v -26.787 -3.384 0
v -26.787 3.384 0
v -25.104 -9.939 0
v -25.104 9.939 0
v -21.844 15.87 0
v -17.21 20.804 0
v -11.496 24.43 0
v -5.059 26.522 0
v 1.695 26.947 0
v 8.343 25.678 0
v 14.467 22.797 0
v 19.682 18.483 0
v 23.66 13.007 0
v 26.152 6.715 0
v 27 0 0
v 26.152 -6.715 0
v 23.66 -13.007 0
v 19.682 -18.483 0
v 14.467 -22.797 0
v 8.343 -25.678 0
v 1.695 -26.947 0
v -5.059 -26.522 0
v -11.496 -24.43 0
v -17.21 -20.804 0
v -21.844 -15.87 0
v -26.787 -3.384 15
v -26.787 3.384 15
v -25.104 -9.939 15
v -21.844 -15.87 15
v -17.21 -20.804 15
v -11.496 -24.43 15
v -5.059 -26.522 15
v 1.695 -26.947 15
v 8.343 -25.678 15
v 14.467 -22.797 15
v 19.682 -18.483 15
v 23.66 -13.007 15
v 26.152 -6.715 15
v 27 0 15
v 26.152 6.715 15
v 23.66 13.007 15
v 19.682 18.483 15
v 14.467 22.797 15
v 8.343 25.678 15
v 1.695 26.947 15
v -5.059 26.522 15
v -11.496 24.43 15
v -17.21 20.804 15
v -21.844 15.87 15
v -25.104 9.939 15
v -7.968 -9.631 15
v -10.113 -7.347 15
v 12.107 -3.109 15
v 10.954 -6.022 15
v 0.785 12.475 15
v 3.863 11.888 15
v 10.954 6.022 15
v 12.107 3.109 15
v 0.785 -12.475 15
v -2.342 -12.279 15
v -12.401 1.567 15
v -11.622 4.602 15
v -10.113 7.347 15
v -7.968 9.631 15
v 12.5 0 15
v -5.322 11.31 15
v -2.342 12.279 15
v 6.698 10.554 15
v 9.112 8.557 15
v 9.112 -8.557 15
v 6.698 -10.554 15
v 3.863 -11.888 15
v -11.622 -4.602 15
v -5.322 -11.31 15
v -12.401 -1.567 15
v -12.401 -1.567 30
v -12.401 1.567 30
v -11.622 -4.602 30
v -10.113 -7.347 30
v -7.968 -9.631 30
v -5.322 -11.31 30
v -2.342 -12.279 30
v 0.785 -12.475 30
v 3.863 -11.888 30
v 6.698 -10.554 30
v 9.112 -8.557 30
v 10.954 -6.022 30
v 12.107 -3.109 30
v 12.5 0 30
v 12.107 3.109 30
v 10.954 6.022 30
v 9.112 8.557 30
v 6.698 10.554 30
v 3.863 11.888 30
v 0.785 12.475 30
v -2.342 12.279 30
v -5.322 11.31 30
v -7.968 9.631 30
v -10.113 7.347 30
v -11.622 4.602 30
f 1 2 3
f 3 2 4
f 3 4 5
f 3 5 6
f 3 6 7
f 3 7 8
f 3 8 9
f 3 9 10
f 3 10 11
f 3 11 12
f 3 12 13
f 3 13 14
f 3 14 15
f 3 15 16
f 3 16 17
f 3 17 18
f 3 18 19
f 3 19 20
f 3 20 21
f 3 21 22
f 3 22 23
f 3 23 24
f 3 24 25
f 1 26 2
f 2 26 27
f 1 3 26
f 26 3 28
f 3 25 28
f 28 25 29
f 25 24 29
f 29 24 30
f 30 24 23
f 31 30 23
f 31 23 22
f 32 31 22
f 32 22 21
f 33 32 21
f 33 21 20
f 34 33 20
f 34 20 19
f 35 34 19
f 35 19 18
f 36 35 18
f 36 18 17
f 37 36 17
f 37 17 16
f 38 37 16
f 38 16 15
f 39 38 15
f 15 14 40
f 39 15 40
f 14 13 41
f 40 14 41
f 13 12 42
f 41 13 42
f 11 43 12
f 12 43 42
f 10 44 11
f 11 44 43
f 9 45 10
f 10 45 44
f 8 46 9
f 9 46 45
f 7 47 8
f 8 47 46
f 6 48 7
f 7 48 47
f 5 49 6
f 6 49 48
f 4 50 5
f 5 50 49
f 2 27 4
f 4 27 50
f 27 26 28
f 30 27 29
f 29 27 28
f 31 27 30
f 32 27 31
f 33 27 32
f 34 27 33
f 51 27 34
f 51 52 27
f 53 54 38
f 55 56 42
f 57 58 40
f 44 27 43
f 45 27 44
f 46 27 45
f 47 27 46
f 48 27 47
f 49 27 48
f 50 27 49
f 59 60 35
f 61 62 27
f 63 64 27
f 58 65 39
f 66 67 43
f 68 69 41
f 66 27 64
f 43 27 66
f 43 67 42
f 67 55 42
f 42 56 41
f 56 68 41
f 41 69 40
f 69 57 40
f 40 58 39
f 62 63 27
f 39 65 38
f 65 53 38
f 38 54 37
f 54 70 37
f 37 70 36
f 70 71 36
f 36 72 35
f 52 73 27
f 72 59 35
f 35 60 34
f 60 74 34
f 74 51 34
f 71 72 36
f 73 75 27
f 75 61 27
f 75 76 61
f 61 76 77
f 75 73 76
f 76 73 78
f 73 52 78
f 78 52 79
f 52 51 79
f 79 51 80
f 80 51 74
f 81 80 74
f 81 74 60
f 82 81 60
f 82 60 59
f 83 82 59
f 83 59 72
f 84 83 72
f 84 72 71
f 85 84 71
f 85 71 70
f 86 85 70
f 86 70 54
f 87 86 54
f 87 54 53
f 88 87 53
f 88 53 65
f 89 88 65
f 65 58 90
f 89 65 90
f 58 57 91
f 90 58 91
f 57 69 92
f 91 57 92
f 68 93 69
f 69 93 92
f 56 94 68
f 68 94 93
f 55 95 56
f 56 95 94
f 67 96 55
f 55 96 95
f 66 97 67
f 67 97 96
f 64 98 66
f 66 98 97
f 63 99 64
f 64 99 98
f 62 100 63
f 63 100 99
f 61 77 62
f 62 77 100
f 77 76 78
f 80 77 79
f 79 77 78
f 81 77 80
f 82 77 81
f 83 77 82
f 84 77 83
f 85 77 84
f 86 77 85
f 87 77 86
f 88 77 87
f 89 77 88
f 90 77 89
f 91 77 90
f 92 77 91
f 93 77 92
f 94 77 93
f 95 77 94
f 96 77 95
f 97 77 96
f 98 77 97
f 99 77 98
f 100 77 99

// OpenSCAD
$fn=25;


cylinder(h=15, r=0.5*54);
translate([0,0,15])cylinder(h=15, r=0.5*25);
